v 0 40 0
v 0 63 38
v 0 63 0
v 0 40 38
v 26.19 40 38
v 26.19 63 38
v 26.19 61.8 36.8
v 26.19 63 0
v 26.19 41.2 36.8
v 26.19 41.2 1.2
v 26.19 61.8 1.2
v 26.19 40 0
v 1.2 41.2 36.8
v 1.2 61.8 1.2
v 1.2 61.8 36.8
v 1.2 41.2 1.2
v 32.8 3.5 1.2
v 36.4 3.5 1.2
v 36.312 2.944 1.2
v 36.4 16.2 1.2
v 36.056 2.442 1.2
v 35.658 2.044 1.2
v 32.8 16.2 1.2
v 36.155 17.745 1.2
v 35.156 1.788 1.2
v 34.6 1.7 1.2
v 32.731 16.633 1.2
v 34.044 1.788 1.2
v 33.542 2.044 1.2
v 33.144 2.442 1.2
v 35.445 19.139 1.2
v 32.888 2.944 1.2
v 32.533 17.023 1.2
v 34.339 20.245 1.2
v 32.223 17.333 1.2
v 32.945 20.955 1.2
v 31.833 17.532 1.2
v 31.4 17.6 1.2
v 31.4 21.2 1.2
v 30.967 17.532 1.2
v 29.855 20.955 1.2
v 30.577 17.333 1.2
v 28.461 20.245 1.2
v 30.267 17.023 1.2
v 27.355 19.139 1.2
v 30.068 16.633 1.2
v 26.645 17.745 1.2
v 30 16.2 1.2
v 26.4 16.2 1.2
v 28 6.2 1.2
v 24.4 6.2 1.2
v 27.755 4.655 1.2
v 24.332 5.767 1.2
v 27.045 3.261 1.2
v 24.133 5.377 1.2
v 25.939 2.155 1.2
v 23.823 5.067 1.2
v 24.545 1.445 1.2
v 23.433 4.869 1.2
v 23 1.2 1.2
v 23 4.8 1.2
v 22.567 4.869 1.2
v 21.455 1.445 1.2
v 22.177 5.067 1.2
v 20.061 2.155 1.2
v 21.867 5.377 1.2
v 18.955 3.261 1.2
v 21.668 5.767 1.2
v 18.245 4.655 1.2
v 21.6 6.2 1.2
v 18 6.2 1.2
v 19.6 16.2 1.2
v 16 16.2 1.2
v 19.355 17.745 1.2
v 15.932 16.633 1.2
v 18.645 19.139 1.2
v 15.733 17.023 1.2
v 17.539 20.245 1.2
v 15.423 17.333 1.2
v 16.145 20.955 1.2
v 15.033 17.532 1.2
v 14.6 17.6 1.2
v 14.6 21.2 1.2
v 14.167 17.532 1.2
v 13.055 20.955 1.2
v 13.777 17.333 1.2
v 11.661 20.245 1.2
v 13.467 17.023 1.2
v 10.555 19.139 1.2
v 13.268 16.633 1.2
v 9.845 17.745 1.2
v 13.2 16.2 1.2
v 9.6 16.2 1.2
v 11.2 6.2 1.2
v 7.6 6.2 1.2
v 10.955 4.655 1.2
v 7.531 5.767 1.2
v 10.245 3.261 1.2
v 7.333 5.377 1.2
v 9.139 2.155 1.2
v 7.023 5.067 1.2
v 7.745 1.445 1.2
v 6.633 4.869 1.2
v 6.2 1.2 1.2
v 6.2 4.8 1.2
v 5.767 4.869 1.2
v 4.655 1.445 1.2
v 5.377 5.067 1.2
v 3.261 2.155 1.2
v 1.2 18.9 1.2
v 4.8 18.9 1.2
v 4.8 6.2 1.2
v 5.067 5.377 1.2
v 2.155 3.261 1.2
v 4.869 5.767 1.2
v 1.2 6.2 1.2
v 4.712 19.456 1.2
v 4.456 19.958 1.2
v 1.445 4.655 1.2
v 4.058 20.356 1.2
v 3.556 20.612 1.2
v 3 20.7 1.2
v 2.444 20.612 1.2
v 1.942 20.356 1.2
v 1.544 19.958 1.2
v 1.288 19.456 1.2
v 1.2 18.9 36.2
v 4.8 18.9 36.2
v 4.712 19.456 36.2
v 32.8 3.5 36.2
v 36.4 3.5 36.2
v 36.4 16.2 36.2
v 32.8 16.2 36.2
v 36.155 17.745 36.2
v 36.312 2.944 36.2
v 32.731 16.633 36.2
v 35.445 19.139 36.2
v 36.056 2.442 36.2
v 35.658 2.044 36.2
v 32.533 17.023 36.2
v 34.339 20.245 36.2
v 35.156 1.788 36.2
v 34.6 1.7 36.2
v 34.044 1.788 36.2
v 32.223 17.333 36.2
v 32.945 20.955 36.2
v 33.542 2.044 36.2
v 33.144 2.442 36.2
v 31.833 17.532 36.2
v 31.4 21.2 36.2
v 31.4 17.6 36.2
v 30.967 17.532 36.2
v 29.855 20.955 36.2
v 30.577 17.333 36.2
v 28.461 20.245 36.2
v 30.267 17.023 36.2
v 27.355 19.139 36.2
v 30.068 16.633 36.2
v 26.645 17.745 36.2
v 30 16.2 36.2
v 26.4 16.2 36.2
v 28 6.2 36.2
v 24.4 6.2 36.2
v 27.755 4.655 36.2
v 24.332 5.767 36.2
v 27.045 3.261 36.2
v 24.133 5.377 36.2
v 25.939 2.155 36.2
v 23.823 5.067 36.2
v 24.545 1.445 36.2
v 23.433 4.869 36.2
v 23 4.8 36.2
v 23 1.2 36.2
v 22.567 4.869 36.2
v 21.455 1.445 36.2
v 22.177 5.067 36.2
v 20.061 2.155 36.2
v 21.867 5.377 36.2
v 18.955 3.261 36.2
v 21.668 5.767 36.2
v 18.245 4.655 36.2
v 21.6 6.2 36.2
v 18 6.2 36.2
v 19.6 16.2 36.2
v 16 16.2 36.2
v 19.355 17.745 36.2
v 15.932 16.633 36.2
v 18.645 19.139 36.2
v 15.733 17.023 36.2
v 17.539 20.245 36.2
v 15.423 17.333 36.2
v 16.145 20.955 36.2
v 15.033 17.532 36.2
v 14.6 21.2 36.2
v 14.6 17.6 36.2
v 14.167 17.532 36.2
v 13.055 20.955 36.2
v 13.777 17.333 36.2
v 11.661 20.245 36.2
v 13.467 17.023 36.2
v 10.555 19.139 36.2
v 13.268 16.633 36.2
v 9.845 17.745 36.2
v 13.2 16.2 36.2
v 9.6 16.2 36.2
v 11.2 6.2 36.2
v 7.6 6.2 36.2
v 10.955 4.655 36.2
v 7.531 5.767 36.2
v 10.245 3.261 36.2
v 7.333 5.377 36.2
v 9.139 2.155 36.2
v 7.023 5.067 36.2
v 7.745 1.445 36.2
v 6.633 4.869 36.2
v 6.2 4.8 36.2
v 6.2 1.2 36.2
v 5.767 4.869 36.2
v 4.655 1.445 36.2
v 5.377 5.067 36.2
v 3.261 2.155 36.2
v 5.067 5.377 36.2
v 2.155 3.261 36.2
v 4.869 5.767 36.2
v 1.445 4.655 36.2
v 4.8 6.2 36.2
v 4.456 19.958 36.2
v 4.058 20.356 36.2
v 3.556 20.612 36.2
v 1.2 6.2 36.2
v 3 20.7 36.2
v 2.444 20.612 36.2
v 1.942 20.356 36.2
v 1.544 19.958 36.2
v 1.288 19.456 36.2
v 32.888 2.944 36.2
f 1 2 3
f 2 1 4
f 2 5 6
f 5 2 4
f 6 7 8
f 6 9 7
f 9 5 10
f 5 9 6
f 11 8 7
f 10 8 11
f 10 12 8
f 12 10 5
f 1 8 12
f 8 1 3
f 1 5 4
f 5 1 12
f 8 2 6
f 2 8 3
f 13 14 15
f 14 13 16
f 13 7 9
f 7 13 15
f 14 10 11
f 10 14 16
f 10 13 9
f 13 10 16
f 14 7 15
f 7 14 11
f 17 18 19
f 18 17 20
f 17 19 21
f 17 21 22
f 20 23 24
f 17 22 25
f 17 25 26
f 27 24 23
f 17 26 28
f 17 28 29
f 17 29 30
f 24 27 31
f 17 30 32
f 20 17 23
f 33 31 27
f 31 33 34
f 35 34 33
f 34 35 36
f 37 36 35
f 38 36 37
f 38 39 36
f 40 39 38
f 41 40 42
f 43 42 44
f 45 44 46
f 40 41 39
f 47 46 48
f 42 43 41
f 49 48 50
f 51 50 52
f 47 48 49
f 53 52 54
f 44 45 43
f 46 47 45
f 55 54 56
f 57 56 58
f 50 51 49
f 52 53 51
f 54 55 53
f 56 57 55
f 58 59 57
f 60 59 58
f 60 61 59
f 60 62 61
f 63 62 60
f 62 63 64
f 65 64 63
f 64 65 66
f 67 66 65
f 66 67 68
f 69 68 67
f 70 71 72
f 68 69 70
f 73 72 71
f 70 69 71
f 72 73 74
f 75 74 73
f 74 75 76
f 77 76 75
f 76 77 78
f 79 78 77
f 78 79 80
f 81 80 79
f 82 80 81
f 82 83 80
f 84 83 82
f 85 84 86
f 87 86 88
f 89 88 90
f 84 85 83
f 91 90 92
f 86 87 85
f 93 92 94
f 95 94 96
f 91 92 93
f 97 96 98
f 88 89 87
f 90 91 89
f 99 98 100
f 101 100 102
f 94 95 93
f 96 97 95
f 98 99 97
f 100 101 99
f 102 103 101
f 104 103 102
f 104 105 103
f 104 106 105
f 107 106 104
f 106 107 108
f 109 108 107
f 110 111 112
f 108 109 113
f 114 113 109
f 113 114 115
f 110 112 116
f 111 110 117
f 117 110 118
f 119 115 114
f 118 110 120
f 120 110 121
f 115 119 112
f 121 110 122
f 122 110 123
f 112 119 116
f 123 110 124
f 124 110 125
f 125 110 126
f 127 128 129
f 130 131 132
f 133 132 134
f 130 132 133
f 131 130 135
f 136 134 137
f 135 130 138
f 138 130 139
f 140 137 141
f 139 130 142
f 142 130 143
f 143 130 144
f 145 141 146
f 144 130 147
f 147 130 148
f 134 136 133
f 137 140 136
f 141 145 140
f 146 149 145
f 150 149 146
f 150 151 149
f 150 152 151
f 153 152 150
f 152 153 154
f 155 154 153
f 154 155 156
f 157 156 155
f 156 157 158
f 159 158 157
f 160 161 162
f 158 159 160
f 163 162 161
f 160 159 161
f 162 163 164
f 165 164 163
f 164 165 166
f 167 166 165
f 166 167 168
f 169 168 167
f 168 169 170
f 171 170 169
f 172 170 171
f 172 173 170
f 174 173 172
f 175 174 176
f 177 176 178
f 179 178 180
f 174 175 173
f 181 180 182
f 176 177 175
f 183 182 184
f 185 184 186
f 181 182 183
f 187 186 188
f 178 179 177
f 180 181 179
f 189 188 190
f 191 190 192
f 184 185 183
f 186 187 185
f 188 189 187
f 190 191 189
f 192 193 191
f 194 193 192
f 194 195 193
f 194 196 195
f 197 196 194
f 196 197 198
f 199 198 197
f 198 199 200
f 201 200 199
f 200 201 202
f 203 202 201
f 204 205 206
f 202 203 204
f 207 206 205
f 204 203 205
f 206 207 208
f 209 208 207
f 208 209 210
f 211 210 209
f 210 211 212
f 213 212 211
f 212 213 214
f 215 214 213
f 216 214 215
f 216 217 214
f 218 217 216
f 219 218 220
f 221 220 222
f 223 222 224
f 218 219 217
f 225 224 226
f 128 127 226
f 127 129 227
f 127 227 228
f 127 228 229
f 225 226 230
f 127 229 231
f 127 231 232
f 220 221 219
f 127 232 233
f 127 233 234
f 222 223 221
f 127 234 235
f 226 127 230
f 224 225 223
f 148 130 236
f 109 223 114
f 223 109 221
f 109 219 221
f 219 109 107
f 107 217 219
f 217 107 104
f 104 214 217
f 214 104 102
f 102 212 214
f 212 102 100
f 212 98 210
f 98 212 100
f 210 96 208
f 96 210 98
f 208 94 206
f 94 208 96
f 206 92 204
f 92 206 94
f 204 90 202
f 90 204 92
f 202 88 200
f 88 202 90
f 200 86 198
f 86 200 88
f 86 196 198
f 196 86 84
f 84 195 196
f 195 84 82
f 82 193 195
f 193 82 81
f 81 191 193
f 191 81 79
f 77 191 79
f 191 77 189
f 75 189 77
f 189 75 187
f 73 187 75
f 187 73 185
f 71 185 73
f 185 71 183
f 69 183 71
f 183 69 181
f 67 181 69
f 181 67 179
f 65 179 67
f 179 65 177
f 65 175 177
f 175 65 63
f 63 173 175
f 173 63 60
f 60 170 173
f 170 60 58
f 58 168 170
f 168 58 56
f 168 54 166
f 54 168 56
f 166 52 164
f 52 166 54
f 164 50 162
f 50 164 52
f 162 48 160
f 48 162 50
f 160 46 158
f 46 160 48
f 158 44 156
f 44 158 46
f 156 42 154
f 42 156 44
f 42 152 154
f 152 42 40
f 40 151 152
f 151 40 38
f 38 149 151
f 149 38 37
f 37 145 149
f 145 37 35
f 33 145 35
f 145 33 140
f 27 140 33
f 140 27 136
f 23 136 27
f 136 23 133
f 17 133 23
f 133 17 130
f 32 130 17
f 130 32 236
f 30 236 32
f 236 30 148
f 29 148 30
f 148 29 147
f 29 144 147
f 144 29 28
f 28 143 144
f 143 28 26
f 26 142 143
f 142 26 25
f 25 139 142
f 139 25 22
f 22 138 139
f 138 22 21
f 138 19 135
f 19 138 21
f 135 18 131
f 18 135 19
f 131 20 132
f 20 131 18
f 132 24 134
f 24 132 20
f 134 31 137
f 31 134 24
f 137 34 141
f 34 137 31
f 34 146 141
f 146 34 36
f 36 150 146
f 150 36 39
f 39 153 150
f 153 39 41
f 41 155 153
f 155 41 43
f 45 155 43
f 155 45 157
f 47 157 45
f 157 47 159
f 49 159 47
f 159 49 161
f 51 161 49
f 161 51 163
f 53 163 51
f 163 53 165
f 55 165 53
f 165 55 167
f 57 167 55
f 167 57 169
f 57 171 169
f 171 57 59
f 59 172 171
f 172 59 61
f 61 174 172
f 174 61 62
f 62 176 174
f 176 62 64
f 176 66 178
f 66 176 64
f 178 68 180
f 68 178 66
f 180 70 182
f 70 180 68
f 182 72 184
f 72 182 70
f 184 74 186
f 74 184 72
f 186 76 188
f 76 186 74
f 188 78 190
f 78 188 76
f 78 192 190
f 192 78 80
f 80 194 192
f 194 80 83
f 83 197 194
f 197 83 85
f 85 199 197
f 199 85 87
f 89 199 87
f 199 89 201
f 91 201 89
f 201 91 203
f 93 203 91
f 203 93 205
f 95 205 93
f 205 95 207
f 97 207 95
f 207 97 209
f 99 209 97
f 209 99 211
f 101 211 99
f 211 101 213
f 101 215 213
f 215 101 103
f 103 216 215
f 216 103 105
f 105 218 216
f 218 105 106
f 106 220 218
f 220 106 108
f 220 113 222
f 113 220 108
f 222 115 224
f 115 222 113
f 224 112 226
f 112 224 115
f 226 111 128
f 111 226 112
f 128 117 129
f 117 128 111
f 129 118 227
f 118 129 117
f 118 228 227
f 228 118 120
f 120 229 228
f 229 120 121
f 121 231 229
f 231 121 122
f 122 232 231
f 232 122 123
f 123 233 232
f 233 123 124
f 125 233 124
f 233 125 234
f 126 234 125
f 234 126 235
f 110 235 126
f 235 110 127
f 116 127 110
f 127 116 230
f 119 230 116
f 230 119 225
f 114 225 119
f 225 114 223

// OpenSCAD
// file: lib/flat spring.scad
FlatSpring(10, 3, 1, 2, 15, 15, $fn=25);

%cube([FlatSpringLength(10, 3, 1, 2), 1, 15]);

function FlatSpringLength(outer_diameter, wall_thickness, offset_per_loop, loops) = (offset_per_loop*2+(outer_diameter+(outer_diameter - wall_thickness*2)))*loops + (outer_diameter - wall_thickness*2)/2;

module FlatSpring(outer_diameter, wall_thickness, offset_per_loop, loops, width2, height) {
	width = width2 - outer_diameter;
	inner_diameter = outer_diameter - wall_thickness*2;
	per_pair_translate = offset_per_loop*2+(outer_diameter+inner_diameter);
	
	linear_extrude(height) translate([outer_diameter/2, outer_diameter/2]) {
		for (i = [0:loops-1]) {
			translate([per_pair_translate*i,0,0])
			FlatSpringLoopPair(outer_diameter, inner_diameter, wall_thickness, width, offset_per_loop, i == loops-1);
		}
		
		translate([-(wall_thickness+inner_diameter/2), 0, 0]) {
			FlatSpringAcrossEnd(wall_thickness, offset_per_loop, width-0.5, outer_diameter);
		}
		translate([(per_pair_translate*loops)-outer_diameter/2-offset_per_loop, width, 0])  rotate([180,0,0]) {
			FlatSpringAcrossEnd(wall_thickness, offset_per_loop, width-0.5, outer_diameter);
		}
	}
}

module FlatSpringLoopPair(outer_diameter, inner_diameter, wall_thickness, width, offset_per_loop, noend) {
	FlatSpringLoop(outer_diameter, inner_diameter);
	
	translate([inner_diameter/2, 0, 0])
	FlatSpringAcross(wall_thickness, offset_per_loop, width);
	
	translate([offset_per_loop+outer_diameter/2+inner_diameter/2, width, 0]) rotate([180,0,0])
	union() {
		FlatSpringLoop(outer_diameter, inner_diameter);
		if (!noend) {
			translate([inner_diameter/2, 0, 0])
			FlatSpringAcross(wall_thickness, offset_per_loop, width);
		}
	}
}

module FlatSpringAcross(wall_thickness, offset_per_loop, width) {
	polygon([[0,0], [wall_thickness, 0], [wall_thickness+offset_per_loop, width], [offset_per_loop, width]]);
}

module FlatSpringAcrossEnd(wall_thickness, offset_per_loop, width, outer_diameter) {
	FlatSpringAcross(wall_thickness, 0, width+outer_diameter/2-wall_thickness/2);
	translate([wall_thickness/2, width+outer_diameter/2-wall_thickness/2, 0]) circle(d=wall_thickness);
}

module FlatSpringLoop(outer_diameter, inner_diameter) {
	difference() {
		circle(d=outer_diameter);
		union() {
			circle(d=inner_diameter);
			translate([-outer_diameter/2,0,0]) square([outer_diameter, outer_diameter]);
		}
	}
}
// main file
use <lib/flat spring.scad>;

width = 20;
height = 35;
wallthickness = 1.2;
springWallThickness = 3.6;
springOffset = 2;
outerRadius=5;
tolerance = 0.3;
loops=2;
$fn=20;
topLength = -10;
topOutside = 0;

explode = 40;

translate([wallthickness,wallthickness,wallthickness]) FlatSpring(outerRadius*2, springWallThickness, springOffset, loops, width, height);

l = topLength+FlatSpringLength(outerRadius*2, springWallThickness, springOffset, loops);
w = width+tolerance*2;
h = height+tolerance*2;

translate([0,explode*1,0])
difference() {
	cube([l+wallthickness-0.01, w+wallthickness*2, h + wallthickness*2]);
	translate([wallthickness,wallthickness,wallthickness]) cube([l, w, h]);
}

translate([0,explode*2,0])
translate([wallthickness+l-topLength,wallthickness,wallthickness]) cube([topLength+topOutside, w-tolerance*2, h-tolerance*2]);
